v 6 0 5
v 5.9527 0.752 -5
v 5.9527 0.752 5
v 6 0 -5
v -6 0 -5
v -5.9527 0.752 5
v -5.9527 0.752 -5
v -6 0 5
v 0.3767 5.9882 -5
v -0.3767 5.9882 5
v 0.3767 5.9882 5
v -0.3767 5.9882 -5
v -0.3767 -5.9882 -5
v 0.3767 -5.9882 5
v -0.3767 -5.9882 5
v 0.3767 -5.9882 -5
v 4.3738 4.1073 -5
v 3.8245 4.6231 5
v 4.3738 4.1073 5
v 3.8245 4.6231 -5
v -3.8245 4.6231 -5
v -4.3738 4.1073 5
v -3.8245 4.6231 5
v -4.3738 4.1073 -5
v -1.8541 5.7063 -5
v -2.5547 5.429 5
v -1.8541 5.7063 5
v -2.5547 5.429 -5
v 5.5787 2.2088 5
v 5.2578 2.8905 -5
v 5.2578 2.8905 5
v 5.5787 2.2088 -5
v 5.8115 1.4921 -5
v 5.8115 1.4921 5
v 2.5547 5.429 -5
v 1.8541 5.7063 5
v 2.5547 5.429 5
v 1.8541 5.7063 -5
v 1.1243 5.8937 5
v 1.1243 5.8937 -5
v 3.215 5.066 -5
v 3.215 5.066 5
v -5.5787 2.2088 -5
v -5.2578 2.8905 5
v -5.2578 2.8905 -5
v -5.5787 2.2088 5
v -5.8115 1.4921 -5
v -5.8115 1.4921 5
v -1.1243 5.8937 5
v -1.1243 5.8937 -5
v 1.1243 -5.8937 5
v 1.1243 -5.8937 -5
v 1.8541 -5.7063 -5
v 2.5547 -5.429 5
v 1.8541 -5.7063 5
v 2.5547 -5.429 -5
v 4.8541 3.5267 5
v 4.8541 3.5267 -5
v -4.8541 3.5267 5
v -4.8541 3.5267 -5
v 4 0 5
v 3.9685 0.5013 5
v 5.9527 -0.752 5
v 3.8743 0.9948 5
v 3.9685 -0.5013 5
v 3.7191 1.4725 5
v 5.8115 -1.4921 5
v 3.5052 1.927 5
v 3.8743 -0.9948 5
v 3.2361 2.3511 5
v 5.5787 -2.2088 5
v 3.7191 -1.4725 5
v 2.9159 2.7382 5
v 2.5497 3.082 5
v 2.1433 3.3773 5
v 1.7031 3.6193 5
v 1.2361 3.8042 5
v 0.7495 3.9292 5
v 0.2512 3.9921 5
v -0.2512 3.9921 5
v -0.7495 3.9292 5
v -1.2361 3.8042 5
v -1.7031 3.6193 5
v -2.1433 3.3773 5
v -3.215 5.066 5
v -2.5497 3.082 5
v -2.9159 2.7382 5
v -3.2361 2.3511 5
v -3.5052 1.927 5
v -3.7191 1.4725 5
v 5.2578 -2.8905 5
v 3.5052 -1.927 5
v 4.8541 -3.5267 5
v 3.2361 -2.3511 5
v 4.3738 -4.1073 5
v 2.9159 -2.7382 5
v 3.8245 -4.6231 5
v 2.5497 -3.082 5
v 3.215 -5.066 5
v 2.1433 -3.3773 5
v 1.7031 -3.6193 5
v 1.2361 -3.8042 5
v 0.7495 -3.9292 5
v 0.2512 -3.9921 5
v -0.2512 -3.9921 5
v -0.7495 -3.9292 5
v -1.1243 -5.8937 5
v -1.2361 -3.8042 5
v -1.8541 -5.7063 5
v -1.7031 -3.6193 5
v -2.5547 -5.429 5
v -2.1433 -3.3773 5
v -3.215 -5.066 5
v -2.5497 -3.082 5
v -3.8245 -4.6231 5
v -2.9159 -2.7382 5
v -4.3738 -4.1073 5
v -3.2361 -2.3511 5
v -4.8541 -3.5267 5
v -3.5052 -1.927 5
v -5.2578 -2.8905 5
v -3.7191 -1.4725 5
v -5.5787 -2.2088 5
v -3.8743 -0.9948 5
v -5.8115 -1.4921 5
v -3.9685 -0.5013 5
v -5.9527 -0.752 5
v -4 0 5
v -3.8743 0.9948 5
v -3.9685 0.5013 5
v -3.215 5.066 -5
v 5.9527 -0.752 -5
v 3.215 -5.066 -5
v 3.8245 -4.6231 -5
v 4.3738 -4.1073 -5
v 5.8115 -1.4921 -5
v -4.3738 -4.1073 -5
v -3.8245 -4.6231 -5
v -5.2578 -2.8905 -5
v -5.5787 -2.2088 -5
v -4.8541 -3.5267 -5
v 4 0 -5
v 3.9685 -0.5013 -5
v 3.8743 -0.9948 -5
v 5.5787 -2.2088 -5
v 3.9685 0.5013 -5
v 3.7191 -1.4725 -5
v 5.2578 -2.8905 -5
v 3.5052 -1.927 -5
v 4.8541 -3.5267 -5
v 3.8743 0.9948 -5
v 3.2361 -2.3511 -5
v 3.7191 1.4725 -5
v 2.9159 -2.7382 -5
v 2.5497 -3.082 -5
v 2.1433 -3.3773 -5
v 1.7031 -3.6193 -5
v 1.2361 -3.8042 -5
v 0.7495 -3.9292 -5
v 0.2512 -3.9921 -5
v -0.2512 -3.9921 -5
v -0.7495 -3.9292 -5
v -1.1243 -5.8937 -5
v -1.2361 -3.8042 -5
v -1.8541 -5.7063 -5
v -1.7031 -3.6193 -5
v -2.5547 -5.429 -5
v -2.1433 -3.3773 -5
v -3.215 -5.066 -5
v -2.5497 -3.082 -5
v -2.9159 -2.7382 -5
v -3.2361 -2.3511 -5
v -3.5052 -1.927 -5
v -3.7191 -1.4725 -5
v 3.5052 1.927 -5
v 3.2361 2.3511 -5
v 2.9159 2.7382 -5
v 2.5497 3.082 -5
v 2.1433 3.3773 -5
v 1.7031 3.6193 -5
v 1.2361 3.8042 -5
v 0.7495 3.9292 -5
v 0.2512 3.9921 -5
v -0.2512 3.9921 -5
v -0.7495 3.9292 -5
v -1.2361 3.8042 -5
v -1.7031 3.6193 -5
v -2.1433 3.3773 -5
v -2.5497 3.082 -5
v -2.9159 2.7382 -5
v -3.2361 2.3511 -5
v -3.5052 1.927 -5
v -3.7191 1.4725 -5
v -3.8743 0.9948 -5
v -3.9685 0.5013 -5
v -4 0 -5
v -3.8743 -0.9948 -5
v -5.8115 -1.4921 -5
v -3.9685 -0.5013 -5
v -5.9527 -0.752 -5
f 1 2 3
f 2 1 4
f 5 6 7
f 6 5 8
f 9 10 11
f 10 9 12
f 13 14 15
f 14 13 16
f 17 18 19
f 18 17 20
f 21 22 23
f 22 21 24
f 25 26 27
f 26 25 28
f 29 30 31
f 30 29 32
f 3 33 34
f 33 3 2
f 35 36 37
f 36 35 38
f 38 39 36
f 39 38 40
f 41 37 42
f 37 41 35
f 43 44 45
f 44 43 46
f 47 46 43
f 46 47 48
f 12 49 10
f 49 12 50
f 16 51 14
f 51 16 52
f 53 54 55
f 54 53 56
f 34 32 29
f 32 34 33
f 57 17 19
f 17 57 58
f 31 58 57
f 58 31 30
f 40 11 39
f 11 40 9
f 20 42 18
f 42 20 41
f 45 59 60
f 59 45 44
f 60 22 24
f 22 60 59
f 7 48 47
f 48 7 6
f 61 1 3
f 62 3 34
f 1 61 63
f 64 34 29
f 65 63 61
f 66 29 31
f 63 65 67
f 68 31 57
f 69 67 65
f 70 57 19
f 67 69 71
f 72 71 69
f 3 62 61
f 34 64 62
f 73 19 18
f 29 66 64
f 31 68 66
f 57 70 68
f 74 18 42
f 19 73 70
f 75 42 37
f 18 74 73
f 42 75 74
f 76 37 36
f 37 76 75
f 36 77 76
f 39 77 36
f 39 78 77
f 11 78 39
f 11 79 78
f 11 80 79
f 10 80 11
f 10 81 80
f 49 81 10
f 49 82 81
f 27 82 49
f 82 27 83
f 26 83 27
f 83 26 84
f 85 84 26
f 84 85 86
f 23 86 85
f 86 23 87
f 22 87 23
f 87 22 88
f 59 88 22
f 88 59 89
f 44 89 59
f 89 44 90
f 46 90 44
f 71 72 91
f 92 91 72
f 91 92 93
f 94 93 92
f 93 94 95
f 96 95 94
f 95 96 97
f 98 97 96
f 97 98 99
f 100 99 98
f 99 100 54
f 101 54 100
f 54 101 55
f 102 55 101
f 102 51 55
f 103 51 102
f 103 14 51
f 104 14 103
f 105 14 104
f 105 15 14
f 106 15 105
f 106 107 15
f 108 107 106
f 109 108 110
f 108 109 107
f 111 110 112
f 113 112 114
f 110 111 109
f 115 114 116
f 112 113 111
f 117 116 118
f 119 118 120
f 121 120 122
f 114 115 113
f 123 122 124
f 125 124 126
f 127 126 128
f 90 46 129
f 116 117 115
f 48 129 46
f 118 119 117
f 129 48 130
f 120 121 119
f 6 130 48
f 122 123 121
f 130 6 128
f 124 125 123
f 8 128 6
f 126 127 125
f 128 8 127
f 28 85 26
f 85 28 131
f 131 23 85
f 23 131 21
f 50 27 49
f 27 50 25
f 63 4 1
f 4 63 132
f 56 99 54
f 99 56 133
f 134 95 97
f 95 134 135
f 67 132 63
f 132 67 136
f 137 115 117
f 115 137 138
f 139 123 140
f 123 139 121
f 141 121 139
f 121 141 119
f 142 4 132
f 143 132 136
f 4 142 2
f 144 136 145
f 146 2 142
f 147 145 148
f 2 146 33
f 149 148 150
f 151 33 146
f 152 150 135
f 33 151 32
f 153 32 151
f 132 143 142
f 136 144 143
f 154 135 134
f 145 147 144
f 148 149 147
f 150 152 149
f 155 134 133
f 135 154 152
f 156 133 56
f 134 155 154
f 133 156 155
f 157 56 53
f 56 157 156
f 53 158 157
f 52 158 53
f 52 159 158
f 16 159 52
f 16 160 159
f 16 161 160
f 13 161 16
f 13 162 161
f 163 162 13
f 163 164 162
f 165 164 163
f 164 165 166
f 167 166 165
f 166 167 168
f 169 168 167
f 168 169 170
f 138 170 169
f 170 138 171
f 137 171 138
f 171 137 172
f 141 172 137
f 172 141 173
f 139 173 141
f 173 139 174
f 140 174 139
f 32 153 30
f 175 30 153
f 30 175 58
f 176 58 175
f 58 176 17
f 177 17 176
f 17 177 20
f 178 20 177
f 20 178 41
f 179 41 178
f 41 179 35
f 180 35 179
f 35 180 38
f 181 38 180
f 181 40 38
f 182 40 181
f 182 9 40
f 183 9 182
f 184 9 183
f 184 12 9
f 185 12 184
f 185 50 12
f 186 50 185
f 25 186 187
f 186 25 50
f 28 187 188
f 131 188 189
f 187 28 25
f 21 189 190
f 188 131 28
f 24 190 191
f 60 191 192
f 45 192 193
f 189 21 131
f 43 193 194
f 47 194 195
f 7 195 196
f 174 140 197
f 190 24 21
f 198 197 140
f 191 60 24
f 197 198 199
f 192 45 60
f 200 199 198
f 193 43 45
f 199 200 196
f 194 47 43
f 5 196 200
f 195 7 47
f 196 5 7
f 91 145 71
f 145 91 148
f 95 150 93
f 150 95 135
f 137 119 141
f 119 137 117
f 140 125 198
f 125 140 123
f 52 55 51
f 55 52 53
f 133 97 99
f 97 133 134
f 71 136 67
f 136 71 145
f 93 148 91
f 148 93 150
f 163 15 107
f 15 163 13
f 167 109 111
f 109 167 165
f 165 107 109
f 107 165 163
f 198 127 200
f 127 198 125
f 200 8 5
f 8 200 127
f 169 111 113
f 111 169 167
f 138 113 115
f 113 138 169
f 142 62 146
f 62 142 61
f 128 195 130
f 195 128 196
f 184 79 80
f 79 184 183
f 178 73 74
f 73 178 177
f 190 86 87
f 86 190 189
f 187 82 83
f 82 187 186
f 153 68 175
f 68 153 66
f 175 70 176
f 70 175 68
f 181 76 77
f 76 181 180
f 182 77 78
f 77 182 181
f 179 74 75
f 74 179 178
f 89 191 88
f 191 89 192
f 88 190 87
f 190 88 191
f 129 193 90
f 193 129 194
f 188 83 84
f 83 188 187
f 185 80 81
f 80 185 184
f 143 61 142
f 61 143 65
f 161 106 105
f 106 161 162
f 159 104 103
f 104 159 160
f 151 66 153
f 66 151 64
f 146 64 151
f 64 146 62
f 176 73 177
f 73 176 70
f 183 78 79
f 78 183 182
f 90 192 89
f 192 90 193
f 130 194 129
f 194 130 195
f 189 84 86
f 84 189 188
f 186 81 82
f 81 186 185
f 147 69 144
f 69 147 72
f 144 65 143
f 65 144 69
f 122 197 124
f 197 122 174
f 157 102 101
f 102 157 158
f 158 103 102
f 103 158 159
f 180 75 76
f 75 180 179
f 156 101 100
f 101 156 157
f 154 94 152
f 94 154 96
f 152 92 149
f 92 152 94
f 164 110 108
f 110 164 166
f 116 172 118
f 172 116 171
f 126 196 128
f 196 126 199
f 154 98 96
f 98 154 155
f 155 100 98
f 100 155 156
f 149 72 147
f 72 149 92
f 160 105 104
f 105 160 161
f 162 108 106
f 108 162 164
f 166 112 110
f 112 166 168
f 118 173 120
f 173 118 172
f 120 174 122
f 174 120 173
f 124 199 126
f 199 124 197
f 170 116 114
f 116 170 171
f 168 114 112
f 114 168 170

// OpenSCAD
$fn = 50;


difference() {
	union() {
		translate(v = [0, 0, -5.0000000000]) {
			cylinder(h = 10, r = 6.0000000000);
		}
	}
	union() {
		translate(v = [0, 0, -100.0000000000]) {
			cylinder(h = 200, r = 4);
		}
	}
}
